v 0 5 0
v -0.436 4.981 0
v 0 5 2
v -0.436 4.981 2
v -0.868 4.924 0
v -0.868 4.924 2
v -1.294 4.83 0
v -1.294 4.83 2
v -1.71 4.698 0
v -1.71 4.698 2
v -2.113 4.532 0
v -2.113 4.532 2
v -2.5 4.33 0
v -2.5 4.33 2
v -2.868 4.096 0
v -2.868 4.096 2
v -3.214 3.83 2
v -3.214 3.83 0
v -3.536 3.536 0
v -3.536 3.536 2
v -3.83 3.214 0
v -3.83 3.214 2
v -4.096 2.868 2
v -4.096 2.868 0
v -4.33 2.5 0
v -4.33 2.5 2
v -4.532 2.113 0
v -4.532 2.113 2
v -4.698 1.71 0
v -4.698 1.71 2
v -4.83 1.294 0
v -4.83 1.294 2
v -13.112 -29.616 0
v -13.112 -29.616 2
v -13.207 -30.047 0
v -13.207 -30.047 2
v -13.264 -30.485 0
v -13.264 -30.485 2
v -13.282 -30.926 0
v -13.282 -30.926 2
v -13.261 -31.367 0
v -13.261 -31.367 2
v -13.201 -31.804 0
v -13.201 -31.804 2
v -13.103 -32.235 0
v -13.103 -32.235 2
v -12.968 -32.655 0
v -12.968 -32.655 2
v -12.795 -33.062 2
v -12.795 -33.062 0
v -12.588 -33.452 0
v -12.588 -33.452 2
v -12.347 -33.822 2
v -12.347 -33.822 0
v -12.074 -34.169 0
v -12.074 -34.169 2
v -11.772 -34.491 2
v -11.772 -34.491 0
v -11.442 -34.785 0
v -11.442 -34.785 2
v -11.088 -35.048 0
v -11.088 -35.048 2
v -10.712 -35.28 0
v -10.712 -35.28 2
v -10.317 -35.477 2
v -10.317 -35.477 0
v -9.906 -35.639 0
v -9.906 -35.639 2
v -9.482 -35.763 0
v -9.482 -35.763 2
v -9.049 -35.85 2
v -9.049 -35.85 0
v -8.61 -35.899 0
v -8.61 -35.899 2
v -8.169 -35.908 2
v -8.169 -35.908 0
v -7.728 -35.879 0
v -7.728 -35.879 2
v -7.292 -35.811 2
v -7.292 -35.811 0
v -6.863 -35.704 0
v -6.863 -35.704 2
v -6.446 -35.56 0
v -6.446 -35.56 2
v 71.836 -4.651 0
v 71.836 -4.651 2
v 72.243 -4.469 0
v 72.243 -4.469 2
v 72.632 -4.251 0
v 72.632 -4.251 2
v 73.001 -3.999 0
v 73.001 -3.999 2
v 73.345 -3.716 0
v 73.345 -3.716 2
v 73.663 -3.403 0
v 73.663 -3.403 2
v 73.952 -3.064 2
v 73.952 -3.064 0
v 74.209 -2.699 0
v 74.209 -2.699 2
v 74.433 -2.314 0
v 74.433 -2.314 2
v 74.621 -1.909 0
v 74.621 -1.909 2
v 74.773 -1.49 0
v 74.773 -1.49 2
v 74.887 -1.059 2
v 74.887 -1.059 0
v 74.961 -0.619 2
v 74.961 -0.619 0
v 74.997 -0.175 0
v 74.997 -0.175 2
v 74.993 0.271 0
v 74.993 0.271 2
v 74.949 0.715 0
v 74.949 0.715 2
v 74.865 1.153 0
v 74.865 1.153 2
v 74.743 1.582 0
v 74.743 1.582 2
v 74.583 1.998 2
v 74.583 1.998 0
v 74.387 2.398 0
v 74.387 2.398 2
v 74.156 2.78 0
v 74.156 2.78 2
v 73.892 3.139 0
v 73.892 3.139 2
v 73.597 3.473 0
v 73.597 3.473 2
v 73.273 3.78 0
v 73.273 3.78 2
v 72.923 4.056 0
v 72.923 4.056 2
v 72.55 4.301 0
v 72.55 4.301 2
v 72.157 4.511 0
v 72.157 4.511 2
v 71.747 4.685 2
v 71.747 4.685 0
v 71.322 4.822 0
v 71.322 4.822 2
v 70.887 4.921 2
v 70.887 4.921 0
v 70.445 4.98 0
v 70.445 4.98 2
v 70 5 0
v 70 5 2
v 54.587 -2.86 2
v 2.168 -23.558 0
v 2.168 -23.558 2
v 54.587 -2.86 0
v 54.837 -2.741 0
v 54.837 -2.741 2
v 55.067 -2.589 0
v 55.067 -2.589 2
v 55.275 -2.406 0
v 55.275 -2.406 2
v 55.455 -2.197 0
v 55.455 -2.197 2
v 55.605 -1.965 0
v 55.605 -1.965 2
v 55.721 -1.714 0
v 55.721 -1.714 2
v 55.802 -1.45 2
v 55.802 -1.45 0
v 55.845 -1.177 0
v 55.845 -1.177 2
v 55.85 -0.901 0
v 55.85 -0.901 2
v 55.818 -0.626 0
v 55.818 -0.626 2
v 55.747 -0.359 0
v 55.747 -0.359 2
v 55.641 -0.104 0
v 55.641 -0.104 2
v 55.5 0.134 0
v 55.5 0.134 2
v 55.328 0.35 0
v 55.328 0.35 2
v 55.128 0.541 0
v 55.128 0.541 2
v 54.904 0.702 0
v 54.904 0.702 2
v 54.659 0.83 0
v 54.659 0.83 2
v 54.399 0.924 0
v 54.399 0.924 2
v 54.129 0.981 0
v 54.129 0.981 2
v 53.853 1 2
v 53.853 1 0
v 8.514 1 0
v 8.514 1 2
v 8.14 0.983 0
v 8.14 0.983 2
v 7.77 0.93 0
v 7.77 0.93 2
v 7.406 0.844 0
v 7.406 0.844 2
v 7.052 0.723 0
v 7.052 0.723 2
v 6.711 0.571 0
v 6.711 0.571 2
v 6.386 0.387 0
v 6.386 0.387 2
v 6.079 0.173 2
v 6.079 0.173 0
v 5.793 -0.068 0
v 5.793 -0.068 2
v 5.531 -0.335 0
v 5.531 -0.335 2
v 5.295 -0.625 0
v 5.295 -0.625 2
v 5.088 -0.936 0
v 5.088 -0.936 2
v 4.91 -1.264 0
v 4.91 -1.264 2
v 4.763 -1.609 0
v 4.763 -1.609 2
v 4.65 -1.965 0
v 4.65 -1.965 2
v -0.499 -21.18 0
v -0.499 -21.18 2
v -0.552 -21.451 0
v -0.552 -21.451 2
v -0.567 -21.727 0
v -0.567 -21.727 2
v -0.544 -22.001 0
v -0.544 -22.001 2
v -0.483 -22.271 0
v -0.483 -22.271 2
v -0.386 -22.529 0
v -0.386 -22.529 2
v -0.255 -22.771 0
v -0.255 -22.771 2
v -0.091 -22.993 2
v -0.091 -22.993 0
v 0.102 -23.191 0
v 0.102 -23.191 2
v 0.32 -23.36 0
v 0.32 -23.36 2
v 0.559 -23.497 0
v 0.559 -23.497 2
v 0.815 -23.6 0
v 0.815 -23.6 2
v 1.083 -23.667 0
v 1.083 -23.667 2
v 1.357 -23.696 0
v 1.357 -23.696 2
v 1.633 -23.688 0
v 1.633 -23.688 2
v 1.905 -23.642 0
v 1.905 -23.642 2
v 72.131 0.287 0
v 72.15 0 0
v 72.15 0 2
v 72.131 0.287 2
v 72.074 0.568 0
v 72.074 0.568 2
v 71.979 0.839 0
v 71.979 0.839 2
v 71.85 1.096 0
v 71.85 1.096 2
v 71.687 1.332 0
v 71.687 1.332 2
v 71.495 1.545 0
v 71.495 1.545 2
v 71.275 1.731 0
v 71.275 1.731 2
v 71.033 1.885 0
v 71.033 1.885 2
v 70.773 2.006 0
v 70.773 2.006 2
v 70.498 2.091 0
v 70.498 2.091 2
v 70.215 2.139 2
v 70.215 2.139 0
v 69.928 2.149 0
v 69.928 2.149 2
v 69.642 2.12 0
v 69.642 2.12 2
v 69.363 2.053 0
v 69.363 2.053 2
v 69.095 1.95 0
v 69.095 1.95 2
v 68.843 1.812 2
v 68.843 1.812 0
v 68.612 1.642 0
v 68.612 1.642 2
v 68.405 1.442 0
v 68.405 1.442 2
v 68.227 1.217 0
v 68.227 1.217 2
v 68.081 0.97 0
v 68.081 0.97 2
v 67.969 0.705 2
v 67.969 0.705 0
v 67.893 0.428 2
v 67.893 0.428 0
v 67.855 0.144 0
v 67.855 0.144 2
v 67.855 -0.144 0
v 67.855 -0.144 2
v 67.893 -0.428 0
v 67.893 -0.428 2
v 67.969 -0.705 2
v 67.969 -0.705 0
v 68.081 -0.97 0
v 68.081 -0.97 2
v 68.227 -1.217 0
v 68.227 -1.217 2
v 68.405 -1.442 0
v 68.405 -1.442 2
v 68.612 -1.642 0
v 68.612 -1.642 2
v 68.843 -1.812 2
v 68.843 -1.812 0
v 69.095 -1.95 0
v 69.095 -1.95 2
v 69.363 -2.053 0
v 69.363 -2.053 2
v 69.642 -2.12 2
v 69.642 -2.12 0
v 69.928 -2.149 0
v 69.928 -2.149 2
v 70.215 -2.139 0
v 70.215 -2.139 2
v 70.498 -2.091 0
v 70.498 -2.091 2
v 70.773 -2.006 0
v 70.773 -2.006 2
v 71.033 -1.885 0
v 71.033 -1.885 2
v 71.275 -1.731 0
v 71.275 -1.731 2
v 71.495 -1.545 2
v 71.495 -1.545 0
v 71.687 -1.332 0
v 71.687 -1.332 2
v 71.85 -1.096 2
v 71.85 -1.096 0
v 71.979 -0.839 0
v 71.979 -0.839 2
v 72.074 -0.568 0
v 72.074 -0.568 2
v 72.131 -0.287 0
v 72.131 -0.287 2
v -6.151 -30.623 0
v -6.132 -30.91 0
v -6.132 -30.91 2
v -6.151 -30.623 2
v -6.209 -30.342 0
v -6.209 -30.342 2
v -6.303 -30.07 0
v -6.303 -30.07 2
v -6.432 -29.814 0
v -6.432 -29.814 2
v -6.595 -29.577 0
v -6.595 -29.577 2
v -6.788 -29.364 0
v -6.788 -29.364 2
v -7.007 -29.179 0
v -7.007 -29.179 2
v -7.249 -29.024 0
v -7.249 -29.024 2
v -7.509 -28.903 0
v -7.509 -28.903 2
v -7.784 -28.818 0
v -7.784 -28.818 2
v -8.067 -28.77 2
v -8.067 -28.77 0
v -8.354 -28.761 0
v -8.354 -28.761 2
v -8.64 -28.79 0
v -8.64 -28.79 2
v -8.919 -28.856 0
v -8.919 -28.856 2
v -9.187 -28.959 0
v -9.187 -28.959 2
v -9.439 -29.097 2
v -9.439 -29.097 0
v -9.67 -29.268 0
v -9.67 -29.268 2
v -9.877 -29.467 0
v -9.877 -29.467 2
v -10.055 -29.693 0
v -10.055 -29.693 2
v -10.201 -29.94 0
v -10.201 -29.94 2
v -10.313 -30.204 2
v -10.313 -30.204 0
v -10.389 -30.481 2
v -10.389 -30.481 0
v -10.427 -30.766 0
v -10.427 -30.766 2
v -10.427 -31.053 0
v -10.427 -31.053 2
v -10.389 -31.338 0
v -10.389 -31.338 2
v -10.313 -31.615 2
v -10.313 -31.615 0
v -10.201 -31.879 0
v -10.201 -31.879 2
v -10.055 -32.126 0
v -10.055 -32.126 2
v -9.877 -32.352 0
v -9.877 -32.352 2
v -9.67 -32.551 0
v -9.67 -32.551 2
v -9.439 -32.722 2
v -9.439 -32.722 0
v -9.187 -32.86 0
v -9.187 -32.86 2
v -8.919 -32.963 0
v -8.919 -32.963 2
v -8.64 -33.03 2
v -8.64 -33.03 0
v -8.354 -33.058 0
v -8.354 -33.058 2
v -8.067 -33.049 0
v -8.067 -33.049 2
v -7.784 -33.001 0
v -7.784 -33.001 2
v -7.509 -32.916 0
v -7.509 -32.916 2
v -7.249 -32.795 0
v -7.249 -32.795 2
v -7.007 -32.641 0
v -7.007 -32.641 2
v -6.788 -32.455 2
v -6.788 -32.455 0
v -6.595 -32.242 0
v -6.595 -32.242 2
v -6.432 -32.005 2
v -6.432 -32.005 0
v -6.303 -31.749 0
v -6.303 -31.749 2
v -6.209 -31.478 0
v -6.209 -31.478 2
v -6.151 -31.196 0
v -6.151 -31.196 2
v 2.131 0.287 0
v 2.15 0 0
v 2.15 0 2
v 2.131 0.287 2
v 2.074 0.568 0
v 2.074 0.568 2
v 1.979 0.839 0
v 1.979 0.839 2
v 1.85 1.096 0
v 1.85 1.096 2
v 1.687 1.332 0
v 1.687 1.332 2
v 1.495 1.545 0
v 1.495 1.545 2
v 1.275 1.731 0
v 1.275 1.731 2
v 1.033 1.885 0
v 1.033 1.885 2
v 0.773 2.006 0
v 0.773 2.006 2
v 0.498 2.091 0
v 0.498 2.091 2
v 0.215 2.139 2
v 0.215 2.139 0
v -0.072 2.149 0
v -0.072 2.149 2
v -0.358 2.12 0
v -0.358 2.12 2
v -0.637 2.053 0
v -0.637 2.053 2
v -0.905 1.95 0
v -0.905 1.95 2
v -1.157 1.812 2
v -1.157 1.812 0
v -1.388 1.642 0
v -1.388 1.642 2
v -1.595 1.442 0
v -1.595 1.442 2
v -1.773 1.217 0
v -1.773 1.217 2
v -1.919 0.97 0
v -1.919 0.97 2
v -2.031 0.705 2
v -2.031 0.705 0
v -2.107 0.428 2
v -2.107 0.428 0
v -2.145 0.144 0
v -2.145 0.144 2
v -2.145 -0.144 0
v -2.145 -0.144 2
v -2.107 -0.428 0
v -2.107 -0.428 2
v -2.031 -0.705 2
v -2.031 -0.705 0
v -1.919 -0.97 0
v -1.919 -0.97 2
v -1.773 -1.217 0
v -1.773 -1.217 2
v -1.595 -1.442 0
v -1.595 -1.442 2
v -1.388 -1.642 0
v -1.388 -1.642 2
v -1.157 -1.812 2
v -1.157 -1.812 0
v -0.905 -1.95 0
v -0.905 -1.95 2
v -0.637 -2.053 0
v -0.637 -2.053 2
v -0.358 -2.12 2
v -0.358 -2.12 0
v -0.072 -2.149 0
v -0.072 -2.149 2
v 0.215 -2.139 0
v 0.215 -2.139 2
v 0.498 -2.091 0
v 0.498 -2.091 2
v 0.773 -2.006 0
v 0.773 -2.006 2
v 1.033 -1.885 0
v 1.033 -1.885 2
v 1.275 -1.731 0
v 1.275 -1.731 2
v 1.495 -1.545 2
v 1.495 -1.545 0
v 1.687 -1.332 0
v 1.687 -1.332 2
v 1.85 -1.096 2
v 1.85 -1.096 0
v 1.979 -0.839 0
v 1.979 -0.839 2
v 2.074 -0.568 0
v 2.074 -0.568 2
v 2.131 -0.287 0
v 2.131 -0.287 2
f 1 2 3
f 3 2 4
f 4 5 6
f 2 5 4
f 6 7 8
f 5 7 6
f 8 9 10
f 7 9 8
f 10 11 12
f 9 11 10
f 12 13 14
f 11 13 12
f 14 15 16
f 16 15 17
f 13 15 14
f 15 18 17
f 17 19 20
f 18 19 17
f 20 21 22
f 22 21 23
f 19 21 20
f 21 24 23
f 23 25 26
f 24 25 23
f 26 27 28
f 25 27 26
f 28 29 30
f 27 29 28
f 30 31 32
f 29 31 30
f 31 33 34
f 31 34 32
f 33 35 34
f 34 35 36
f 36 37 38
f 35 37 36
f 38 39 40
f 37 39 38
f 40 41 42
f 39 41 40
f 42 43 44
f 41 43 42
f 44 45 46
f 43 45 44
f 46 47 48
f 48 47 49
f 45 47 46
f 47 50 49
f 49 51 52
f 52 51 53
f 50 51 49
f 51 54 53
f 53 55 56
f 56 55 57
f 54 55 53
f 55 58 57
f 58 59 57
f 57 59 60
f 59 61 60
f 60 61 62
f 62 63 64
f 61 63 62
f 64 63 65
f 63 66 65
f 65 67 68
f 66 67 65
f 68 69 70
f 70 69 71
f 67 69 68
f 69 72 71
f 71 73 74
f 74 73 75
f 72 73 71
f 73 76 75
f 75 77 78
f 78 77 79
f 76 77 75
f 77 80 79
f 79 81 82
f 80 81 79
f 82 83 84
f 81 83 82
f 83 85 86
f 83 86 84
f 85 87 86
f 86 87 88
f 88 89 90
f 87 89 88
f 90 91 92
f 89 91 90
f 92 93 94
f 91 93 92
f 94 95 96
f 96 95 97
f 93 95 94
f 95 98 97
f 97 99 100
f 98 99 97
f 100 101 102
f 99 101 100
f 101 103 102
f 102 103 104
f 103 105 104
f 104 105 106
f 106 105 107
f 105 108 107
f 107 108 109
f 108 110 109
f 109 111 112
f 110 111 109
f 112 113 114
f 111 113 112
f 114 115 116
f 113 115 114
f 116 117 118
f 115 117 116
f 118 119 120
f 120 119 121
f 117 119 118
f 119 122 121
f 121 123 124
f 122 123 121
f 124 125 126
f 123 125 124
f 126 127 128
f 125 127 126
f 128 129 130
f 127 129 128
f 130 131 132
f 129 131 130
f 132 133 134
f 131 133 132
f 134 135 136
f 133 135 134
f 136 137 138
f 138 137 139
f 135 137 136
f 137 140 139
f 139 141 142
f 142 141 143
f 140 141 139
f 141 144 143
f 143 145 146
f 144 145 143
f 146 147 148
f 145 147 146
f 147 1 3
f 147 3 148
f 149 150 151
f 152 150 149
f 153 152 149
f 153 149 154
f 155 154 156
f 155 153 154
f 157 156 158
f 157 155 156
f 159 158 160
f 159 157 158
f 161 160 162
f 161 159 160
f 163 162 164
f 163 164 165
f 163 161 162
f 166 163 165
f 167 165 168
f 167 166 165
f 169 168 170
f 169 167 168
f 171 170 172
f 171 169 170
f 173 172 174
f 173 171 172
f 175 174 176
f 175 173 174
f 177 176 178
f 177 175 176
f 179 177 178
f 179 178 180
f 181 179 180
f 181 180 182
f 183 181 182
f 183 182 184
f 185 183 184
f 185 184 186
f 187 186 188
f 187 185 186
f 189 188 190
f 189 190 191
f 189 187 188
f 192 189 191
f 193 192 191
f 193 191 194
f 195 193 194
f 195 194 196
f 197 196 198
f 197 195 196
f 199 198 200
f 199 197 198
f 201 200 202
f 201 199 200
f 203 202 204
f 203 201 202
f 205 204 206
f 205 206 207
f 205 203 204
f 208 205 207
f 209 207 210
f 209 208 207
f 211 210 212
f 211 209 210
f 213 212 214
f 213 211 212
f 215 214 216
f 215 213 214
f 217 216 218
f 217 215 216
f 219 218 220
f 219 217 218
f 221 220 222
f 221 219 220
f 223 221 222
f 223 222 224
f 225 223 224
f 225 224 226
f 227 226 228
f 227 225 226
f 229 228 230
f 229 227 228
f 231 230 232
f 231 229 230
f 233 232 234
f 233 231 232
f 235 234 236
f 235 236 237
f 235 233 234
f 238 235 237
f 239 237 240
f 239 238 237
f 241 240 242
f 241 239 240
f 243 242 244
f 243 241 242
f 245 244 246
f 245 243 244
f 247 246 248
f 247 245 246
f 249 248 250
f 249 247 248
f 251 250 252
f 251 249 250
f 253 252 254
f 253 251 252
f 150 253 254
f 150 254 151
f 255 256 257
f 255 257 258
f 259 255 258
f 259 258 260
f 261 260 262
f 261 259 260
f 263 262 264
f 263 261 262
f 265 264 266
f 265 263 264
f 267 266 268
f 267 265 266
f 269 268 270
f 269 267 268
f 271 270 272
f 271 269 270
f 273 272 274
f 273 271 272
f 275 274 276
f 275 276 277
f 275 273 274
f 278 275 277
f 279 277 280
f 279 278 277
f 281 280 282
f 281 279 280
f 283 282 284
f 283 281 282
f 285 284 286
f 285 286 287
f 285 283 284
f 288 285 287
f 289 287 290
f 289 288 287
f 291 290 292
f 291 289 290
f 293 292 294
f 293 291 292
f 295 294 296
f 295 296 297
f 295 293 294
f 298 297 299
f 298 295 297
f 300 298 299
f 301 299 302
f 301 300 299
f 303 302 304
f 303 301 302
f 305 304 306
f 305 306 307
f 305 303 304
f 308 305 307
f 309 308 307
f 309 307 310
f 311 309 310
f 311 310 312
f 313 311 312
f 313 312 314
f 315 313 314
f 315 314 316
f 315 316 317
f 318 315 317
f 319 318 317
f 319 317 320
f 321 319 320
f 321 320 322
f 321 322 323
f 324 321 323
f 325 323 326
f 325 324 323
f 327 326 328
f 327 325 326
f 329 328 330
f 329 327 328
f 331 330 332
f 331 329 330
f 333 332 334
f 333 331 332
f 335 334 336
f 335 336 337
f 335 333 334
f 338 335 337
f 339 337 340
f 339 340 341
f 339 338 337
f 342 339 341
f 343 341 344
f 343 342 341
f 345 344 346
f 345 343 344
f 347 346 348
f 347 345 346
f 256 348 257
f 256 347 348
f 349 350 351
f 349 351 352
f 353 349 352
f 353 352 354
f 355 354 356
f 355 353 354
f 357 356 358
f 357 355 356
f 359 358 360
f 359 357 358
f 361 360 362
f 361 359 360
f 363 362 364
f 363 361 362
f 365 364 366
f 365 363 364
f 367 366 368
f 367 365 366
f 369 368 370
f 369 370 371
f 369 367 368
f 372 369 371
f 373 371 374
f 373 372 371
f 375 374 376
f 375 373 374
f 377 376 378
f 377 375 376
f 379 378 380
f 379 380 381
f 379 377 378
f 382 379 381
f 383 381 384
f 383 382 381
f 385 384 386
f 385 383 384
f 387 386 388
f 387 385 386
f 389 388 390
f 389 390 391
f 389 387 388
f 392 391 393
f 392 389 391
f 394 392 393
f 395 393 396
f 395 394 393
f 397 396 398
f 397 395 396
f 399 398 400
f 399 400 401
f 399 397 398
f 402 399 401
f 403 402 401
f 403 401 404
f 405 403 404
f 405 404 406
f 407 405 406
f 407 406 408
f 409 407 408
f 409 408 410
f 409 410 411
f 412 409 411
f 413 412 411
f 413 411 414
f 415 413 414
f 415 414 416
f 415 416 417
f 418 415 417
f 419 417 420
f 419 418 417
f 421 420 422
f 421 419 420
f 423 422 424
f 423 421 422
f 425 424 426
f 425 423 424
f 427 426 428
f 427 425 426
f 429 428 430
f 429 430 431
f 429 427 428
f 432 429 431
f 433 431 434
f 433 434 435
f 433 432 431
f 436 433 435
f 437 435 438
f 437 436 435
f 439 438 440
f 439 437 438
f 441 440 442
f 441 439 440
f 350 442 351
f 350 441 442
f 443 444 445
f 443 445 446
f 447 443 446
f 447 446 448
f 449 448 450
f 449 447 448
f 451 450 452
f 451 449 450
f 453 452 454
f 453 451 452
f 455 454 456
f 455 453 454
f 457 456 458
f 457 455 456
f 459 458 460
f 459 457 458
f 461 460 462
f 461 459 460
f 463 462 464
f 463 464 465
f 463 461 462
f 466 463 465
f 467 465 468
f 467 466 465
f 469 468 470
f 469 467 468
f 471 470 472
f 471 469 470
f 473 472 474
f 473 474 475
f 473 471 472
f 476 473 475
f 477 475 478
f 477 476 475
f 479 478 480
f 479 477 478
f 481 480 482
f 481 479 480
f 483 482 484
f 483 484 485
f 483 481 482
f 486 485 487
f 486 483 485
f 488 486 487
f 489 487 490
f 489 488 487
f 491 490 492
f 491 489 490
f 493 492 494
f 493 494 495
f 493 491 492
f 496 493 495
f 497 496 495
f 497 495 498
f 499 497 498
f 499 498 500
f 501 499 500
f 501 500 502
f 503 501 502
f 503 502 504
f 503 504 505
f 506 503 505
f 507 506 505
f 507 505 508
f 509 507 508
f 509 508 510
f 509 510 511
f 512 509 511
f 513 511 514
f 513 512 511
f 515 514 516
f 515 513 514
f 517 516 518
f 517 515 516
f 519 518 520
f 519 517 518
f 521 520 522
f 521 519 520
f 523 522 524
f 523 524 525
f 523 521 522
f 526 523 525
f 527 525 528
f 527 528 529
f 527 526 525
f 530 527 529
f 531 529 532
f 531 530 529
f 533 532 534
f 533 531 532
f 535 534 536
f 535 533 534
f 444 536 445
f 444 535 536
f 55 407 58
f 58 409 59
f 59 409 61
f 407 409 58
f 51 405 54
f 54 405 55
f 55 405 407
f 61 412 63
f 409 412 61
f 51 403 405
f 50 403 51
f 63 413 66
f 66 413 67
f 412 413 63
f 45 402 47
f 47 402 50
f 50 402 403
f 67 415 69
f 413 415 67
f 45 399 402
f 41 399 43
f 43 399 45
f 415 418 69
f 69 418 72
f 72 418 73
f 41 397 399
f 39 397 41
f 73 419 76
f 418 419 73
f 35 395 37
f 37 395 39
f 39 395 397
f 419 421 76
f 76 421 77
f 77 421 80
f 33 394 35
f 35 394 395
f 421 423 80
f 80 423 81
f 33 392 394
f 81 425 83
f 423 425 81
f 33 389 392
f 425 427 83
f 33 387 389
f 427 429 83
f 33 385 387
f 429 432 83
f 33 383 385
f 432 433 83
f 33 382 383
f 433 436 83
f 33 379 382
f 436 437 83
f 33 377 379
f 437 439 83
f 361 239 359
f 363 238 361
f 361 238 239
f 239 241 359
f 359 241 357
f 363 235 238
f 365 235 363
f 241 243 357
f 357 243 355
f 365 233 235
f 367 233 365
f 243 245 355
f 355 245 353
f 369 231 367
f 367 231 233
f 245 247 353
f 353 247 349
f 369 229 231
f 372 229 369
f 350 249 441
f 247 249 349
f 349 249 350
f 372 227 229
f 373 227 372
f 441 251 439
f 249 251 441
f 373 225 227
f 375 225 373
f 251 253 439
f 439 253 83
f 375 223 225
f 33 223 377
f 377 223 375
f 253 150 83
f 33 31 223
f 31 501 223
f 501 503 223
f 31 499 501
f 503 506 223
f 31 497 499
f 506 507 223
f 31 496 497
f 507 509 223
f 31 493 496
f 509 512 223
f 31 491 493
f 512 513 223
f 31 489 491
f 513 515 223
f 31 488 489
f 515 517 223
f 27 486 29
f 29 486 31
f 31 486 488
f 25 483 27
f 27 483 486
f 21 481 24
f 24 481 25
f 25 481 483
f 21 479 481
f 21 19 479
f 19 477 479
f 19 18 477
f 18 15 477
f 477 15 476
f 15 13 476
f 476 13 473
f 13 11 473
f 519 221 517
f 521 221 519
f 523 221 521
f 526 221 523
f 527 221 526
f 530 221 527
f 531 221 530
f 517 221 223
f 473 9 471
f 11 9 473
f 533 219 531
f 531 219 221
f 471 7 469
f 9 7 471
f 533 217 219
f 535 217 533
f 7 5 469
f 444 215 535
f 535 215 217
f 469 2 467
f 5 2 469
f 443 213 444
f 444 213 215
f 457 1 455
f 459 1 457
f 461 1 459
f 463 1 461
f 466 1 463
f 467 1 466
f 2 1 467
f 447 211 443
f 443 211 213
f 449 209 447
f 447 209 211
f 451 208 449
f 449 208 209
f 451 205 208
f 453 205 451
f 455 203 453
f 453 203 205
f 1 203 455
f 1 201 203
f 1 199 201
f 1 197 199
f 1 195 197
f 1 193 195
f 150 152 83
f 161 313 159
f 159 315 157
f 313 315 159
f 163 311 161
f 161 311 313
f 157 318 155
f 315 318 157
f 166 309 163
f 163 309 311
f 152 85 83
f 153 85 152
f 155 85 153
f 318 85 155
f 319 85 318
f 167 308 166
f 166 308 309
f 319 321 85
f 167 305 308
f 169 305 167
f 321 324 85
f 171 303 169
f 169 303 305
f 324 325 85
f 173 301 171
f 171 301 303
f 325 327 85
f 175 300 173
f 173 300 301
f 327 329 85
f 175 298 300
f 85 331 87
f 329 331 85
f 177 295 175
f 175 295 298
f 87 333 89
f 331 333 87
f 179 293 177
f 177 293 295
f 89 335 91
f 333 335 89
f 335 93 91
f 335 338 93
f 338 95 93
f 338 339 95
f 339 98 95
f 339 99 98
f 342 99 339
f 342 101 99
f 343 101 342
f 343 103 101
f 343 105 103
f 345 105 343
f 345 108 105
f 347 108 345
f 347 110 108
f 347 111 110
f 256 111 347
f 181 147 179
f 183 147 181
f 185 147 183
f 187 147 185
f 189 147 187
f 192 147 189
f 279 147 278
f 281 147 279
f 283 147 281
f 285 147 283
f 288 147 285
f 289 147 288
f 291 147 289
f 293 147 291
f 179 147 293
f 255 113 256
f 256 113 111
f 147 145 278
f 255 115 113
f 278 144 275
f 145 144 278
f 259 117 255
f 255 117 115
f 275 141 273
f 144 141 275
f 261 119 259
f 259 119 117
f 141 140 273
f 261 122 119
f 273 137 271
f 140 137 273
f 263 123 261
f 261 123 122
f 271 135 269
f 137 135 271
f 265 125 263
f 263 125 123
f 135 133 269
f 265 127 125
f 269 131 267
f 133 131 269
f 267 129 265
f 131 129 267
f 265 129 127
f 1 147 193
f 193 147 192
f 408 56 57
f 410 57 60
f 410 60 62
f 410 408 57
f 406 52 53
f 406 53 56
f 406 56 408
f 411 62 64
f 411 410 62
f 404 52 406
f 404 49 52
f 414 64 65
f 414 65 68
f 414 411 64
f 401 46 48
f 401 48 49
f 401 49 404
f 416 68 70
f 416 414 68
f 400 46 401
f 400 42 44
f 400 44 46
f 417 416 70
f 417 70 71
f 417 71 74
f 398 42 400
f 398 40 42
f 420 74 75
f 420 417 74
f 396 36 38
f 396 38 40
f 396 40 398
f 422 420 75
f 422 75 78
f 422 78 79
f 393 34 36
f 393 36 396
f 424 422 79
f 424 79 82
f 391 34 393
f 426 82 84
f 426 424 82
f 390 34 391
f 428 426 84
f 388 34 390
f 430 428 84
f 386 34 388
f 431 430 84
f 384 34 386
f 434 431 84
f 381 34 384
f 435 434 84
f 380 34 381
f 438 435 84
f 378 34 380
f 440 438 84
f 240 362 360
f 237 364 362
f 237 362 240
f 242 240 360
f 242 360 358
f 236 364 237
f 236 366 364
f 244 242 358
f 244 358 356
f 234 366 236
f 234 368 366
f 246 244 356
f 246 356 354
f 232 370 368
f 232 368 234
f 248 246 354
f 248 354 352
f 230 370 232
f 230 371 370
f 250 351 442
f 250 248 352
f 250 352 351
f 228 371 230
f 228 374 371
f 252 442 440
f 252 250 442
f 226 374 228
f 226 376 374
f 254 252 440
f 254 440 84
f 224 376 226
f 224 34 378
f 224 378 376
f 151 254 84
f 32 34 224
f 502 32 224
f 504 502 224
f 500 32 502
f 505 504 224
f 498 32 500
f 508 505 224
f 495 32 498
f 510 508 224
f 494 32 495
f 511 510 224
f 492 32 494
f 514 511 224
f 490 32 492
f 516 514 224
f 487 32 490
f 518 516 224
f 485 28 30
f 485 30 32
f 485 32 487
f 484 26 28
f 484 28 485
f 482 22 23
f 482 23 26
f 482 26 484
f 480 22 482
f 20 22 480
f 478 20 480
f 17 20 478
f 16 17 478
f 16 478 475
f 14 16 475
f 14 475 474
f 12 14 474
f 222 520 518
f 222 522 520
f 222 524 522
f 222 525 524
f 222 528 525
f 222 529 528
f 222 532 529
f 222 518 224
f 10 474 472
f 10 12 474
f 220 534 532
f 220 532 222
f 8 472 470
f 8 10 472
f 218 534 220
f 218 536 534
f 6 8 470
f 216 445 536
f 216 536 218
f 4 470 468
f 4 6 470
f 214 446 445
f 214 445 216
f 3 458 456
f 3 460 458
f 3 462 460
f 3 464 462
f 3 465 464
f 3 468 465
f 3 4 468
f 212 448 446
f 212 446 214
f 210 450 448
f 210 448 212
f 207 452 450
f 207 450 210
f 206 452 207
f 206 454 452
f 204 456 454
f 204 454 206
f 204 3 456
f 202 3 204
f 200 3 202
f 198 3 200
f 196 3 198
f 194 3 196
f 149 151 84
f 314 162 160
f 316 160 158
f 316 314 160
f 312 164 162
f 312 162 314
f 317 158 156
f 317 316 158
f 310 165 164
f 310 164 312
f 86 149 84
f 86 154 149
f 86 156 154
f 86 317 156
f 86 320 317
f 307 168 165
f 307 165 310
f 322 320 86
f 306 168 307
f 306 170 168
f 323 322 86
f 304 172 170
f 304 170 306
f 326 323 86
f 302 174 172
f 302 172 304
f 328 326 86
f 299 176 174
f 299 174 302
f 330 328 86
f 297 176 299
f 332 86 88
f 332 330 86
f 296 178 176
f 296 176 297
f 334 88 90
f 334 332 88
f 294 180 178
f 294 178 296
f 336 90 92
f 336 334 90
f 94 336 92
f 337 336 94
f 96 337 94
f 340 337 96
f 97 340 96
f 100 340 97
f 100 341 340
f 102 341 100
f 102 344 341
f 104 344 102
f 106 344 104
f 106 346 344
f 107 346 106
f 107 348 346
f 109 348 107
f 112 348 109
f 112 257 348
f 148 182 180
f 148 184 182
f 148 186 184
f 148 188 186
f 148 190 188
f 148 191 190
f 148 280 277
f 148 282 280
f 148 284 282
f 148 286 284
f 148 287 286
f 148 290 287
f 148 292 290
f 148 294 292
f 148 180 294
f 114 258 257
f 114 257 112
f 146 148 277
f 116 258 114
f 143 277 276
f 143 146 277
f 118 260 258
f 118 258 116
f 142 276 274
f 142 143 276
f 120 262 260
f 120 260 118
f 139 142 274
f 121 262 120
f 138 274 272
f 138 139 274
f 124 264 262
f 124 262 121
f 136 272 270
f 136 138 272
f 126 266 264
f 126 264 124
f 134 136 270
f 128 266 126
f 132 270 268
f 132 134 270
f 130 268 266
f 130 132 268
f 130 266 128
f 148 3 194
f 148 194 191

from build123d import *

# Parameters (mm, degrees)
SKETCH_R  = 2.15
PAD_DEPTH = 2


with BuildPart() as part:
    # Sketch → Pad (new body)
    with BuildSketch(Plane.XY):
        with BuildLine():
            ThreePointArc((0, 5), (-3.043807, 3.966767), (-4.829629, 1.294095))
            Line((-13.111839, -29.615531), (-4.829629, 1.294095))
            ThreePointArc((-13.111839, -29.615531), (-11.610103, -34.641265), (-6.445927, -35.560225))
            Line((71.836283, -4.650598), (-6.445927, -35.560225))
            ThreePointArc((71.836283, -4.650598), (74.911873, 0.934614), (70, 5))
            Line((0, 5), (70, 5))
        make_face()
        Circle(SKETCH_R, mode=Mode.SUBTRACT)
        with Locations((-8.282209, -30.909626)):
            Circle(SKETCH_R, mode=Mode.SUBTRACT)
        with Locations((70, 0)):
            Circle(SKETCH_R, mode=Mode.SUBTRACT)
        with BuildLine():
            Line((2.1675, -23.558181), (54.587435, -2.860239))
            ThreePointArc((54.587435, -2.860239), (55.817671, -0.626154), (53.852922, 1))
            Line((53.852922, 1), (8.513638, 1))
            ThreePointArc((8.513638, 1), (6.078592, 0.173413), (4.649935, -1.964724))
            Line((4.649935, -1.964724), (-0.498864, -21.180304))
            ThreePointArc((-0.498864, -21.180304), (0.10183, -23.190597), (2.1675, -23.558181))
        make_face(mode=Mode.SUBTRACT)
    extrude(amount=PAD_DEPTH)


solid = part.part
